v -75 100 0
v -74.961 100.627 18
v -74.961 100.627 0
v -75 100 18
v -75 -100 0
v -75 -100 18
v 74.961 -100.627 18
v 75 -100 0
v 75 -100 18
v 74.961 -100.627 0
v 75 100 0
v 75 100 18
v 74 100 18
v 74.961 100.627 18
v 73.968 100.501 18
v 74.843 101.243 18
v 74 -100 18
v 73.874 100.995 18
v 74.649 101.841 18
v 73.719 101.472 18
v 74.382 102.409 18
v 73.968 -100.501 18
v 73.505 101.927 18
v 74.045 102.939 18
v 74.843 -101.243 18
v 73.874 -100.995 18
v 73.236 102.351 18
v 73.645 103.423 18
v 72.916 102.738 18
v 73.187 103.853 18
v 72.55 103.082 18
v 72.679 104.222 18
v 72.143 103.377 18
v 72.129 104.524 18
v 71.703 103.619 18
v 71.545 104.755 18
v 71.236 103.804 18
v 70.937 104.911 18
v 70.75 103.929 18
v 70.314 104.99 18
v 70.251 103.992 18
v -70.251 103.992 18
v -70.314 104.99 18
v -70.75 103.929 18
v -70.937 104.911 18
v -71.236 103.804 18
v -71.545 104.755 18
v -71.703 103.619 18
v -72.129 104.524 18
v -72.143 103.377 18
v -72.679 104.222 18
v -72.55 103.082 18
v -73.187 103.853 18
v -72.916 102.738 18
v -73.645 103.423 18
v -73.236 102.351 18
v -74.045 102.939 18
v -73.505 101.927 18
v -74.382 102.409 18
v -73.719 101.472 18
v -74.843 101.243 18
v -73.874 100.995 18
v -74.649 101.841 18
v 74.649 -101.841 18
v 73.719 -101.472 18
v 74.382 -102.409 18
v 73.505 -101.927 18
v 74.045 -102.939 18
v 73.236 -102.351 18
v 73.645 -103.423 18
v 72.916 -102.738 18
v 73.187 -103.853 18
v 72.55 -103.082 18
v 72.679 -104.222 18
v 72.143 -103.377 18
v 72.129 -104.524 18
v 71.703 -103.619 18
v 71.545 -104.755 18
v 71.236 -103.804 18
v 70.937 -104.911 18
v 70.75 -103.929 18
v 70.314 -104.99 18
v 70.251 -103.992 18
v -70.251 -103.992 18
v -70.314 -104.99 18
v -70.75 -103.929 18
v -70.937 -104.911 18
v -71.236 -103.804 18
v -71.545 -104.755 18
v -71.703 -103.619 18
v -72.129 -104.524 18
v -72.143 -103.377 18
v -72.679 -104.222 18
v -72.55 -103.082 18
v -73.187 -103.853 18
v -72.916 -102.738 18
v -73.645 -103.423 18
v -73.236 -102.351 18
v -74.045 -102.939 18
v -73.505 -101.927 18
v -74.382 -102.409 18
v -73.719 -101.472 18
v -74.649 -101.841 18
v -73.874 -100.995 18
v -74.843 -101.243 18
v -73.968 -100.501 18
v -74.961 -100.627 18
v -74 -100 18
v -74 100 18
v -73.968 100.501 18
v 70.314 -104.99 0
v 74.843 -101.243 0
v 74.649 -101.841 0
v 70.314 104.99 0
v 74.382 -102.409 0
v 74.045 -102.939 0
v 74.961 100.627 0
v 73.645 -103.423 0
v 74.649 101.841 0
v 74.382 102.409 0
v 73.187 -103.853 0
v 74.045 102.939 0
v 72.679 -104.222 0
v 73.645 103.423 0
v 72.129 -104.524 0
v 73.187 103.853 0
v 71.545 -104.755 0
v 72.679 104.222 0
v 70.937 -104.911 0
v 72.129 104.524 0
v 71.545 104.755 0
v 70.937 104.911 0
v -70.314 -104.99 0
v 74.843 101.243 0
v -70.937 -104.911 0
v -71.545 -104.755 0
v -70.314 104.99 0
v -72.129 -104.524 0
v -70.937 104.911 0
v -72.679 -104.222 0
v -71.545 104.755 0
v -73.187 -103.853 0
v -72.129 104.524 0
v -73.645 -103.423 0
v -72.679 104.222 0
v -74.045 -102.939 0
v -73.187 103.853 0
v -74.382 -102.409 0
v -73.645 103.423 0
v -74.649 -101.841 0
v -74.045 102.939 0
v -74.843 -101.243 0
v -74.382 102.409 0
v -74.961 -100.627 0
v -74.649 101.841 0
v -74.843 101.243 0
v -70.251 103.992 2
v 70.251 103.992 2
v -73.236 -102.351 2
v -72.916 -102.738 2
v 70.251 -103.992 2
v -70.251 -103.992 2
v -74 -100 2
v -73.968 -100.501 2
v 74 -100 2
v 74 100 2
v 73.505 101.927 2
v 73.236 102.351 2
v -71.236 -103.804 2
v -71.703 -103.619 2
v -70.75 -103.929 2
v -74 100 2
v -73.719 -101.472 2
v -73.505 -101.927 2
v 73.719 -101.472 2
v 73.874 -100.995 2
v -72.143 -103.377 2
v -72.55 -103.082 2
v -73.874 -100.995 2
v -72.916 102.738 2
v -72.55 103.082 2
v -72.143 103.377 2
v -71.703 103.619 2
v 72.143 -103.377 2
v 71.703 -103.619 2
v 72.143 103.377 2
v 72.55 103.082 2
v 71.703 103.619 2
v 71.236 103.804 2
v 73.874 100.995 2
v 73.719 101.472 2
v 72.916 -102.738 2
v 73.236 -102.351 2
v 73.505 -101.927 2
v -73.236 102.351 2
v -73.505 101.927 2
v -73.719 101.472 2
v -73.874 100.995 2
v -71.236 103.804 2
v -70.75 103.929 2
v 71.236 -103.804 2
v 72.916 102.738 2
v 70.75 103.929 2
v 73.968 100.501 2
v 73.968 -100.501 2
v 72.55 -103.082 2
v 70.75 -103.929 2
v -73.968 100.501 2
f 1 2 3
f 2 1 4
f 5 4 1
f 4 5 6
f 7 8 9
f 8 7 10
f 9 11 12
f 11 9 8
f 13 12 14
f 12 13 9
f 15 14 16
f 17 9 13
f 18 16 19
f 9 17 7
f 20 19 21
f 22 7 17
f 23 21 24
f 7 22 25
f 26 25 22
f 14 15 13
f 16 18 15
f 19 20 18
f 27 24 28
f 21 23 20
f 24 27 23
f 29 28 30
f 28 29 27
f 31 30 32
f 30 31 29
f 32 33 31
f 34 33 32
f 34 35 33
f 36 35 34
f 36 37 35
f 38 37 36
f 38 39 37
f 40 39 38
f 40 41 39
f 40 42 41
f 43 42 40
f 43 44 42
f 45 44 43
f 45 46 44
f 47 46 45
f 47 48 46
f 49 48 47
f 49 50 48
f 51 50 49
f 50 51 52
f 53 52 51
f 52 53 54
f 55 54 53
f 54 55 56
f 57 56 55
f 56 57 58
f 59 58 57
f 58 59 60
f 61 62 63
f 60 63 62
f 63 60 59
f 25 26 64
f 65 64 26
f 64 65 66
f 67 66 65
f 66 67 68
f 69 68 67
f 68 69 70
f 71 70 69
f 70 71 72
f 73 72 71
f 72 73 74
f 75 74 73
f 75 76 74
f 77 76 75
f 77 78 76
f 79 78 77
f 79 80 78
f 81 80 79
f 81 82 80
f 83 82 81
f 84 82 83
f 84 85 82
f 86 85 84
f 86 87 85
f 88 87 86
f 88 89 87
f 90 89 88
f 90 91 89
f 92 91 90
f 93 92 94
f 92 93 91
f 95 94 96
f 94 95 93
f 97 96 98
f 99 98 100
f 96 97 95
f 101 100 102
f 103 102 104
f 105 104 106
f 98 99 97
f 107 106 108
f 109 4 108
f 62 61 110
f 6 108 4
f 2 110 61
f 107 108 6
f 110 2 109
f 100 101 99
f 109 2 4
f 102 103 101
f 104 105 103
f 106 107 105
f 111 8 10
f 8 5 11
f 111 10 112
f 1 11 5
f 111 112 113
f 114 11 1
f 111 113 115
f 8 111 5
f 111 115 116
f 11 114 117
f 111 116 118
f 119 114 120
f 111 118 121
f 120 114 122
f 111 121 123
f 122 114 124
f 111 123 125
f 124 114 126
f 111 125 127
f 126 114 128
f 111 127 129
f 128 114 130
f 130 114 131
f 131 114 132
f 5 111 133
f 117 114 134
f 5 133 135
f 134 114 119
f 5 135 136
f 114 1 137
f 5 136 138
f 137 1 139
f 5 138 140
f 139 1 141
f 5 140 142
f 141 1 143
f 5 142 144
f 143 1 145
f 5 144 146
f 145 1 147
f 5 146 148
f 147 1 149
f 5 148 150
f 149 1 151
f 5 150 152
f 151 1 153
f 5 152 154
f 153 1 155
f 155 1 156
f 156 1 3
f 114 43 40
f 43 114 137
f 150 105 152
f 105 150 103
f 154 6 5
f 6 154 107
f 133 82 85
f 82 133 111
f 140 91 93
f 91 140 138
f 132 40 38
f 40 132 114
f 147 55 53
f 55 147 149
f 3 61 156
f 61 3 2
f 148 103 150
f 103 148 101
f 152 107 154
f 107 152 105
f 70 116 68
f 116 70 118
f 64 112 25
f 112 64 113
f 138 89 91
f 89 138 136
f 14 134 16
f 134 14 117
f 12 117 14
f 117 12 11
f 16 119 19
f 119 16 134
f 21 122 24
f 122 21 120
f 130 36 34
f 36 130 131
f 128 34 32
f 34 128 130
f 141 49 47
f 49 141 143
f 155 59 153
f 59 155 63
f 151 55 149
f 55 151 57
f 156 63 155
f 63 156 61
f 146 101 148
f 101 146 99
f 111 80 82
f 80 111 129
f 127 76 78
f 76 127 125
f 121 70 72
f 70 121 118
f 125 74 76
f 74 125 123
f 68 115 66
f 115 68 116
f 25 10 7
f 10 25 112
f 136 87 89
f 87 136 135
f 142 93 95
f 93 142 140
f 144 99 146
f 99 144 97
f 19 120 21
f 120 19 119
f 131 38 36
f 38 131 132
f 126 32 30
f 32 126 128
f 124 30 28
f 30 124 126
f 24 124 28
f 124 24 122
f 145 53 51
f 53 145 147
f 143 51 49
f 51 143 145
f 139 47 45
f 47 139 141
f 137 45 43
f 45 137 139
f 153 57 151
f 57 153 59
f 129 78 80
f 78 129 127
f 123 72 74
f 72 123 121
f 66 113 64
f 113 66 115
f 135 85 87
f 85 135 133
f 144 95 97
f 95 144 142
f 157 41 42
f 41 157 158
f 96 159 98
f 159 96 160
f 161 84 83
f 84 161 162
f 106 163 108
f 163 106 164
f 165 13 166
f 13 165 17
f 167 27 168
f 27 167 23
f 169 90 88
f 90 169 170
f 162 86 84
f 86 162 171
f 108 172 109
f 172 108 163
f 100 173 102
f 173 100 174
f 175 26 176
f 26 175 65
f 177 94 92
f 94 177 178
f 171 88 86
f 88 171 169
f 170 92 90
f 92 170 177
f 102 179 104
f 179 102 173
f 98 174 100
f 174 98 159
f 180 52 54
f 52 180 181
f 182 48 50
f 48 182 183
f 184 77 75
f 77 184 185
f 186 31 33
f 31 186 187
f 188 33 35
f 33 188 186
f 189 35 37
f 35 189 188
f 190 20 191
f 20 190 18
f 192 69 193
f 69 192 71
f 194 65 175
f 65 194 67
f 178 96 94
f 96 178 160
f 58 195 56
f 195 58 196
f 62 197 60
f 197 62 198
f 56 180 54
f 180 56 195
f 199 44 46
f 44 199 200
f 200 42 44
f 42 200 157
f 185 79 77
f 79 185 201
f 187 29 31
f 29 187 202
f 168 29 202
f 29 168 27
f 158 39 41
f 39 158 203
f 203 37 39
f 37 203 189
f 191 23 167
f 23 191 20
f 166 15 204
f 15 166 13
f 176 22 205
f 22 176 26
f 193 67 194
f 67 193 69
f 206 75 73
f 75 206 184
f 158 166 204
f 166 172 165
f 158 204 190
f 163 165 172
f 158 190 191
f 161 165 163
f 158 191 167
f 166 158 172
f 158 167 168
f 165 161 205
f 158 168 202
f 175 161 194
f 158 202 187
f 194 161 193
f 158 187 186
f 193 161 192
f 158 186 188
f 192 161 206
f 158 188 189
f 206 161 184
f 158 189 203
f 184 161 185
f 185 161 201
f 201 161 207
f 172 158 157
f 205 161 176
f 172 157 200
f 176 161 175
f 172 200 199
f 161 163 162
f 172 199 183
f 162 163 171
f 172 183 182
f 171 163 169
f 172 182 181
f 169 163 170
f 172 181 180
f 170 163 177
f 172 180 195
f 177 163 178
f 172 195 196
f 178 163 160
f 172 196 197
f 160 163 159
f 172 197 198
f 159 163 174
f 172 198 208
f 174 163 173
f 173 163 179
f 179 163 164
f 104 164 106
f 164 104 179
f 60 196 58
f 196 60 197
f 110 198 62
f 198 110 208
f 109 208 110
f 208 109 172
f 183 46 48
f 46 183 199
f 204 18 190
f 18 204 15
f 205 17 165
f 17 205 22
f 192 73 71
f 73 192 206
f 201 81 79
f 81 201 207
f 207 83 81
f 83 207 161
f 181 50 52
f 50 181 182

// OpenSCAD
$fn = 50;


difference() {
	union() {
		hull() {
			translate(v = [-70.0000000000, 100.0000000000, 0]) {
				cylinder(h = 18, r = 5);
			}
			translate(v = [70.0000000000, 100.0000000000, 0]) {
				cylinder(h = 18, r = 5);
			}
			translate(v = [-70.0000000000, -100.0000000000, 0]) {
				cylinder(h = 18, r = 5);
			}
			translate(v = [70.0000000000, -100.0000000000, 0]) {
				cylinder(h = 18, r = 5);
			}
		}
	}
	union() {
		translate(v = [0, 0, 2]) {
			hull() {
				translate(v = [-70.0000000000, 100.0000000000, 0]) {
					cylinder(h = 16, r = 4);
				}
				translate(v = [70.0000000000, 100.0000000000, 0]) {
					cylinder(h = 16, r = 4);
				}
				translate(v = [-70.0000000000, -100.0000000000, 0]) {
					cylinder(h = 16, r = 4);
				}
				translate(v = [70.0000000000, -100.0000000000, 0]) {
					cylinder(h = 16, r = 4);
				}
			}
		}
	}
}
